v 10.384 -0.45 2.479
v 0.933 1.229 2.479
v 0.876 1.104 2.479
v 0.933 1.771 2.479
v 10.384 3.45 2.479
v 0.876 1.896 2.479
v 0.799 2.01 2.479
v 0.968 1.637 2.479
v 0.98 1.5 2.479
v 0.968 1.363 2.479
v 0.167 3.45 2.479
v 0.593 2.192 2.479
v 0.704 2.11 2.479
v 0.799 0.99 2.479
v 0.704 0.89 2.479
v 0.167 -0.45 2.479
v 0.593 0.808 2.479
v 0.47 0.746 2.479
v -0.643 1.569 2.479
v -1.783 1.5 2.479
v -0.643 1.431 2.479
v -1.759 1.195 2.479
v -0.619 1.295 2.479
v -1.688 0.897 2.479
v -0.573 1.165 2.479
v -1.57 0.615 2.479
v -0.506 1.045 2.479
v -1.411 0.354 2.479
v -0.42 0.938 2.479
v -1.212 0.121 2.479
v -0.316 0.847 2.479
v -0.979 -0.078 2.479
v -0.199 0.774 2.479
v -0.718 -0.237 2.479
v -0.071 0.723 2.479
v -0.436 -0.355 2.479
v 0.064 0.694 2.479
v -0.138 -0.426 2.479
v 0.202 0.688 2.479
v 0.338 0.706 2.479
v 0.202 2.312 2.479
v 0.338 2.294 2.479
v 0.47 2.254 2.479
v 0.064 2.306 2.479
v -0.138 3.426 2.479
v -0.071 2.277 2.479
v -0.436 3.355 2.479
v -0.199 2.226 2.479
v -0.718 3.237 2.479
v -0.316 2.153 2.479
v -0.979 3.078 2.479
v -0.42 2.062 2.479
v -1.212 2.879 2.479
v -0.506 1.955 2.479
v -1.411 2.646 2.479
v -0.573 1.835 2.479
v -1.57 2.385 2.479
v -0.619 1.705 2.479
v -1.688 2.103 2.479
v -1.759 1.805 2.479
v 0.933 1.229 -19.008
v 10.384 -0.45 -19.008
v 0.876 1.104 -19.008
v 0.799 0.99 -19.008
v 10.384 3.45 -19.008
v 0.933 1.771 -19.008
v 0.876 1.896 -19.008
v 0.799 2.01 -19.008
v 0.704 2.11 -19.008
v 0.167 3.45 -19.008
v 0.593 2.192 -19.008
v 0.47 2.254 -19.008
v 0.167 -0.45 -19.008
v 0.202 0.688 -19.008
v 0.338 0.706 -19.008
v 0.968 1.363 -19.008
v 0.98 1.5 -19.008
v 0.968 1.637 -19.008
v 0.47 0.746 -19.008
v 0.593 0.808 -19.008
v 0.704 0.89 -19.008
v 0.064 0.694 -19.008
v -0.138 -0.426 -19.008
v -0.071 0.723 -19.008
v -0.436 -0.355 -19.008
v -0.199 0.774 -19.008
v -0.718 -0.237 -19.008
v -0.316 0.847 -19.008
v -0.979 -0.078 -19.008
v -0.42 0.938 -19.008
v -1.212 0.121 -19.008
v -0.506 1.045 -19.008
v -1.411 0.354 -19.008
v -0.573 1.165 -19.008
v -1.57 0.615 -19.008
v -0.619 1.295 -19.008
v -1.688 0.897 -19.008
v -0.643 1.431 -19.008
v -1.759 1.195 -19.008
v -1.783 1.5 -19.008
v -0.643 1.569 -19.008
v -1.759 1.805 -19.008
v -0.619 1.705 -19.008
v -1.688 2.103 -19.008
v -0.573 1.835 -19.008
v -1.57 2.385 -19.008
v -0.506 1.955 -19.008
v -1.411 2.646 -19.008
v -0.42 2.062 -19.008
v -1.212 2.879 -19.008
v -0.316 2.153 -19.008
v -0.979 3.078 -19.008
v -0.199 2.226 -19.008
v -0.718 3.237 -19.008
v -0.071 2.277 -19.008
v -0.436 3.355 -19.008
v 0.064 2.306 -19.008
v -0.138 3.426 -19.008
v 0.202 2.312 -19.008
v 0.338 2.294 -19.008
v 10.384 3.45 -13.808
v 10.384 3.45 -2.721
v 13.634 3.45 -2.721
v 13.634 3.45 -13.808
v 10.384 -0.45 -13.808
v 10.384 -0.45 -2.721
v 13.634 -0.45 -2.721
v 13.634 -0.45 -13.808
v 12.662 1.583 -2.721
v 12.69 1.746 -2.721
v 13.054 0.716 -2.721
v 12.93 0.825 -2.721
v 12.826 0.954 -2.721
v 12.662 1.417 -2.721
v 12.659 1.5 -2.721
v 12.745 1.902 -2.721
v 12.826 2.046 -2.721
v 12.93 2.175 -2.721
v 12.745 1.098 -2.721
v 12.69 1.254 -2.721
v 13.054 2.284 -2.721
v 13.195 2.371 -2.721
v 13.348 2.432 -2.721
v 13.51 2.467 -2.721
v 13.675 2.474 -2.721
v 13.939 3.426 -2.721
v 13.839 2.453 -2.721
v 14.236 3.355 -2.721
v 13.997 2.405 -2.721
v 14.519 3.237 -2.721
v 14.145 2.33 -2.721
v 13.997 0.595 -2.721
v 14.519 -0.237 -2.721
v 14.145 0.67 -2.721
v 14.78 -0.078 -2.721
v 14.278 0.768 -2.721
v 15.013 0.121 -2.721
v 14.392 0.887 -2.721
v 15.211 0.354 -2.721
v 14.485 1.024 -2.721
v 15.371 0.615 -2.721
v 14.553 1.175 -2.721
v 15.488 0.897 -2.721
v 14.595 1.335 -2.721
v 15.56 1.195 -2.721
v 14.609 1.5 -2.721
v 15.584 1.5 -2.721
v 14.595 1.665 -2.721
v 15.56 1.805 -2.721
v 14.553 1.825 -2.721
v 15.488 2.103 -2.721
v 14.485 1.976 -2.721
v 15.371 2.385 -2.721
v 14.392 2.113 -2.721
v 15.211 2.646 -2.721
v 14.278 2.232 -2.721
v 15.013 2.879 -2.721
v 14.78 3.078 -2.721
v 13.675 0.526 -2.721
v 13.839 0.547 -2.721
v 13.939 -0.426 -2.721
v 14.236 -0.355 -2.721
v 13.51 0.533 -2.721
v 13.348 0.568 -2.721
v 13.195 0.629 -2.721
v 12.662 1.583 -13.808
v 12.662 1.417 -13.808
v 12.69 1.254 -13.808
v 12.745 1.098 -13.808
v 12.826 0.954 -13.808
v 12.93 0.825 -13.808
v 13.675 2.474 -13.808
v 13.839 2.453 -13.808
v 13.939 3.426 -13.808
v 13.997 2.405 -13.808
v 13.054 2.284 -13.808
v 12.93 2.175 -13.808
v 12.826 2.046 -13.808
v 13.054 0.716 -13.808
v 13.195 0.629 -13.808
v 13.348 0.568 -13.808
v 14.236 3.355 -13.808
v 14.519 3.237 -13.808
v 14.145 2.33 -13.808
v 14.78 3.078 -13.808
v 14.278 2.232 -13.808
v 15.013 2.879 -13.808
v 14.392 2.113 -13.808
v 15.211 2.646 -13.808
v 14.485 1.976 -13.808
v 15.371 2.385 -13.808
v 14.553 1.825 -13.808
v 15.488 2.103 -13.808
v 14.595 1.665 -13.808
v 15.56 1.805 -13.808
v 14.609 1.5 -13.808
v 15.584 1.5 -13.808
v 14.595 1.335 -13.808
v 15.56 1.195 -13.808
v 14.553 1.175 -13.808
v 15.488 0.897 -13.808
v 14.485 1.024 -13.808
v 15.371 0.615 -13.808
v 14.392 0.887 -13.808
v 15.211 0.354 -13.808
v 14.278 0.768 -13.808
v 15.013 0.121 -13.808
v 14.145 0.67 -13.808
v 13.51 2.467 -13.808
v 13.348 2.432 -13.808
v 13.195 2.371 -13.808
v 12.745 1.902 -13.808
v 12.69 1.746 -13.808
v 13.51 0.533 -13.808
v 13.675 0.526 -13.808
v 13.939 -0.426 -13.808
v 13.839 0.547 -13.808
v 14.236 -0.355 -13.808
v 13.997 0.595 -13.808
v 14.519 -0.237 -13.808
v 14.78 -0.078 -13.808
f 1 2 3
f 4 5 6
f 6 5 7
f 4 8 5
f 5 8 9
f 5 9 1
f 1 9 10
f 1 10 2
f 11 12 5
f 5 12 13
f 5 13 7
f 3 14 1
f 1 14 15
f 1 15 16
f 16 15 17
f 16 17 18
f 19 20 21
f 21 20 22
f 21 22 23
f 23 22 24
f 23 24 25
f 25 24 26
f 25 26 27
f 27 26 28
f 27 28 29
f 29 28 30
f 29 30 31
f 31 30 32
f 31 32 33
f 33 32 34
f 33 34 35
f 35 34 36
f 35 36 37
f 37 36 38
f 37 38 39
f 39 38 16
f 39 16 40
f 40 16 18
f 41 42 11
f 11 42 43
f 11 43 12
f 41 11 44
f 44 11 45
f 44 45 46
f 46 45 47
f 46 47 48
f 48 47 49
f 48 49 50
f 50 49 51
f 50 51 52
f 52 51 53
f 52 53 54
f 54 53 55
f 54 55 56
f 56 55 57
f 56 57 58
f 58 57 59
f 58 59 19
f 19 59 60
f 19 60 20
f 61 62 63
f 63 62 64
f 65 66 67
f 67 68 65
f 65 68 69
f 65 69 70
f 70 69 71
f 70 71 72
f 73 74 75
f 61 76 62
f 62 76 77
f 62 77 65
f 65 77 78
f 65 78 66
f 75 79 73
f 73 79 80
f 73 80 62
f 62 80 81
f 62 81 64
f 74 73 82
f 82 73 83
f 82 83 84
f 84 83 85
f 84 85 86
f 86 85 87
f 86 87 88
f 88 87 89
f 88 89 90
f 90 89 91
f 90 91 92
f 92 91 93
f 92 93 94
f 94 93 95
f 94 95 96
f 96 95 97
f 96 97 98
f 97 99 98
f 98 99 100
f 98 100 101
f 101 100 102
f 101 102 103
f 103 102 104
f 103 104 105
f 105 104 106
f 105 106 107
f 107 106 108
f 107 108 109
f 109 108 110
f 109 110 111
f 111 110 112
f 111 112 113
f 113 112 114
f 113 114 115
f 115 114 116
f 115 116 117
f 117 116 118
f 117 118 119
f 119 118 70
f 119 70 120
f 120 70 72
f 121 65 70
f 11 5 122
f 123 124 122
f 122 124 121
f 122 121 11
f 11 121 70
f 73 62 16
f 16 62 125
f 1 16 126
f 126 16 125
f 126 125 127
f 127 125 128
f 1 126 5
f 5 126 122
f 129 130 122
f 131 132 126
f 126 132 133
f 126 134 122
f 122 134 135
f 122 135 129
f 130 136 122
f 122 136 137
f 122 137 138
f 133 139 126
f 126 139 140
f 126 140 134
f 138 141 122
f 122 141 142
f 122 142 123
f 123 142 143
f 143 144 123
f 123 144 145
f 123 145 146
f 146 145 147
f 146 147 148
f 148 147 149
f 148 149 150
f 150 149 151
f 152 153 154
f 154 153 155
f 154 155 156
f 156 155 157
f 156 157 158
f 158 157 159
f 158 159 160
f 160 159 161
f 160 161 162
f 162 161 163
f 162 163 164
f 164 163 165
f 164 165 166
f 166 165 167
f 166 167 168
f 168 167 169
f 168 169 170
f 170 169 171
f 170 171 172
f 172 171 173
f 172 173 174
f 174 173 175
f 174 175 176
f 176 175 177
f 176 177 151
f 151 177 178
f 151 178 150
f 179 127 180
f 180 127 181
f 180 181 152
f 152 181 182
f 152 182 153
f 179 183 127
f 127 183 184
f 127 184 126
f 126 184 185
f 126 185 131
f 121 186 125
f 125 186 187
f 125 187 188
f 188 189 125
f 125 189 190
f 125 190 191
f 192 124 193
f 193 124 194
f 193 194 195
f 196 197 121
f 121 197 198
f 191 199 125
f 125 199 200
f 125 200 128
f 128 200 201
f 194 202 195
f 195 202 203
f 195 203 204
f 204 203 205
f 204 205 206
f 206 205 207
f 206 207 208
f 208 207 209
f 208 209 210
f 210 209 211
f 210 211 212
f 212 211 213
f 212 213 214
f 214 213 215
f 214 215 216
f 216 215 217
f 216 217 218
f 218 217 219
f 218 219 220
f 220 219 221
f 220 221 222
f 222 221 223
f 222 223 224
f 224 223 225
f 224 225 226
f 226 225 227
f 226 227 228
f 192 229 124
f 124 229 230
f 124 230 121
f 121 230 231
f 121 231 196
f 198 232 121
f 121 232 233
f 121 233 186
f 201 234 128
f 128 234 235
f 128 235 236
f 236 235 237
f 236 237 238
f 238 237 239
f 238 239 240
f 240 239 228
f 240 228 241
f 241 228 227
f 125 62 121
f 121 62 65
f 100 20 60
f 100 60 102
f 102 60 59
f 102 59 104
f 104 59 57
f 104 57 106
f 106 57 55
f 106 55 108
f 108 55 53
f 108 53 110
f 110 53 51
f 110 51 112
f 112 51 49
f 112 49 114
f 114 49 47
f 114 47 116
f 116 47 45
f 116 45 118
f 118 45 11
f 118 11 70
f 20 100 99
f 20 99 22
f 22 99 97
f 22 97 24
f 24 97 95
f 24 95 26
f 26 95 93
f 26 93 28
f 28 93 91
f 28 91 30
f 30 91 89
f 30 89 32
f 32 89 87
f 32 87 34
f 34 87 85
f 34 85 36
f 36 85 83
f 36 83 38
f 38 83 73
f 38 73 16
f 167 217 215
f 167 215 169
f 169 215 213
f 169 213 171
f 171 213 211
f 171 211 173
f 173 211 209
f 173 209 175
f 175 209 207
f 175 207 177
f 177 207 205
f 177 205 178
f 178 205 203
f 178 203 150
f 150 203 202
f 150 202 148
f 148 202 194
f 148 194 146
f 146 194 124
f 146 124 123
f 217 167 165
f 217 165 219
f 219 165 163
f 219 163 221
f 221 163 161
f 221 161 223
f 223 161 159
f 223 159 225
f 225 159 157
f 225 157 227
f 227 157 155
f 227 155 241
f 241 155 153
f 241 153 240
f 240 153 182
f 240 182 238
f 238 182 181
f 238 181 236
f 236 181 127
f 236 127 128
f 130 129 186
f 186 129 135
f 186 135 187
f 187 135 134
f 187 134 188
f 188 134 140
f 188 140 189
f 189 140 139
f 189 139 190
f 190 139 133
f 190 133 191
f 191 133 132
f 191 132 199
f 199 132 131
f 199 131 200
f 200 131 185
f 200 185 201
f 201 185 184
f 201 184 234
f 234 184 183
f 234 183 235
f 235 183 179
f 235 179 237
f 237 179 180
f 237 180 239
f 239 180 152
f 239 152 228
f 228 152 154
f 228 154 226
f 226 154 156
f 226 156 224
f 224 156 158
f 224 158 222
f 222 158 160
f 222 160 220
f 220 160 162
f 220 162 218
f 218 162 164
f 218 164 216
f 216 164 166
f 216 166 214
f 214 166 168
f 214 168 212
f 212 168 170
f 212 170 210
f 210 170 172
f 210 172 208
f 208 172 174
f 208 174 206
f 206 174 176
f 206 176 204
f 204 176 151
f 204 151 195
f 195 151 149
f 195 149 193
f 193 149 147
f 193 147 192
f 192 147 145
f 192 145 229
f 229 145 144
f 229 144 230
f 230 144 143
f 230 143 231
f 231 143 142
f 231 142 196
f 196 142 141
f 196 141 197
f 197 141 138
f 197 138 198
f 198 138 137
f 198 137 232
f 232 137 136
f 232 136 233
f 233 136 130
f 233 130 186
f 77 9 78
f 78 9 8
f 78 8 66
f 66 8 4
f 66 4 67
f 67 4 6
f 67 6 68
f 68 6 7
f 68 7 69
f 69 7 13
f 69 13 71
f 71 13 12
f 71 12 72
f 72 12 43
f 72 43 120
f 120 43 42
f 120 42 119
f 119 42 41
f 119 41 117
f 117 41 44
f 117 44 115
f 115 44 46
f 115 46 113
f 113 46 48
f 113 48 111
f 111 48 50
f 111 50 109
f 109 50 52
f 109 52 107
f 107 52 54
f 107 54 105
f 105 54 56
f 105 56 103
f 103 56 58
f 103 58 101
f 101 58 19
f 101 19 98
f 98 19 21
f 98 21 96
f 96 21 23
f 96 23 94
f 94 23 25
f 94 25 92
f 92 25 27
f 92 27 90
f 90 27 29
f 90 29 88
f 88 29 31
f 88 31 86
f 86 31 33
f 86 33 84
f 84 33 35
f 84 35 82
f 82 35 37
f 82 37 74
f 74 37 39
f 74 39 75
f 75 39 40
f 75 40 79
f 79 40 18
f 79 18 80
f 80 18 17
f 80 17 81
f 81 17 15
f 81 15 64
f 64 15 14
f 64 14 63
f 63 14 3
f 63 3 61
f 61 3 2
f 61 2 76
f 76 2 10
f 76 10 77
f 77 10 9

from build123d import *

# Parameters (mm, degrees)
SKETCH1_W           = 13.359057051
SKETCH1_H           = 16.529002792
BOSS_EXTRUDE1_DEPTH = 3
SKETCH2_W           = 4
SKETCH2_H           = 4
CUT_EXTRUDE1_DEPTH  = 22.463278841
FILLET1_R           = 1.5
SKETCH5_R           = 0.625
SKETCH5_R_2         = 0.75
CUT_EXTRUDE3_DEPTH  = 22.463278841
SCALE1_SCALE        = 1.3


with BuildPart() as part:
    # Sketch1 → Boss-Extrude1 (new body)
    with BuildSketch(Plane(origin=(0, 0, 0), x_dir=(1, 0, 0), z_dir=(0, 1, 0))):
        with Locations((6.679528526, 8.264501396)):
            Rectangle(SKETCH1_W, SKETCH1_H)
    extrude(amount=BOSS_EXTRUDE1_DEPTH)

    # Sketch2 → Cut-Extrude1 (cut, through all)
    with BuildSketch(Plane(origin=(0, 3, 0), x_dir=(1, 0, 0), z_dir=(0, 1, 0))):
        with Locations((11.359057051, 14.529002792)):
            Rectangle(SKETCH2_W, SKETCH2_H)
        with Locations((11.359057051, 2)):
            Rectangle(SKETCH2_W, SKETCH2_H)
    extrude(amount=-CUT_EXTRUDE1_DEPTH, mode=Mode.SUBTRACT)

    # Fillet1
    fillet1_edges = [part.edges().sort_by_distance(p)[0] for p in [
        (13.359057051, 0, -8.264501396),
        (13.359057051, 3, -8.264501396),
        (0, 0, -8.264501396),
        (0, 3, -8.264501396),
    ]]
    fillet(fillet1_edges, radius=FILLET1_R - 0.0001)  # a hair under: the kernel refuses the full size

    # Sketch5 → Cut-Extrude3 (cut, through all)
    with BuildSketch(Plane.XY):
        with Locations((1.5, 1.5)):
            Circle(SKETCH5_R)
        with Locations((11.859057051, 1.5)):
            Circle(SKETCH5_R_2)
    extrude(amount=-CUT_EXTRUDE3_DEPTH, mode=Mode.SUBTRACT)


with BuildPart() as part_1:
    # Scale1: scaled about (5.943207595, 1.5, -8.264501396)
    add(part.part.scale(SCALE1_SCALE).moved(Location((-1.782962279, -0.45, 2.479350419))))


solid = part_1.part
